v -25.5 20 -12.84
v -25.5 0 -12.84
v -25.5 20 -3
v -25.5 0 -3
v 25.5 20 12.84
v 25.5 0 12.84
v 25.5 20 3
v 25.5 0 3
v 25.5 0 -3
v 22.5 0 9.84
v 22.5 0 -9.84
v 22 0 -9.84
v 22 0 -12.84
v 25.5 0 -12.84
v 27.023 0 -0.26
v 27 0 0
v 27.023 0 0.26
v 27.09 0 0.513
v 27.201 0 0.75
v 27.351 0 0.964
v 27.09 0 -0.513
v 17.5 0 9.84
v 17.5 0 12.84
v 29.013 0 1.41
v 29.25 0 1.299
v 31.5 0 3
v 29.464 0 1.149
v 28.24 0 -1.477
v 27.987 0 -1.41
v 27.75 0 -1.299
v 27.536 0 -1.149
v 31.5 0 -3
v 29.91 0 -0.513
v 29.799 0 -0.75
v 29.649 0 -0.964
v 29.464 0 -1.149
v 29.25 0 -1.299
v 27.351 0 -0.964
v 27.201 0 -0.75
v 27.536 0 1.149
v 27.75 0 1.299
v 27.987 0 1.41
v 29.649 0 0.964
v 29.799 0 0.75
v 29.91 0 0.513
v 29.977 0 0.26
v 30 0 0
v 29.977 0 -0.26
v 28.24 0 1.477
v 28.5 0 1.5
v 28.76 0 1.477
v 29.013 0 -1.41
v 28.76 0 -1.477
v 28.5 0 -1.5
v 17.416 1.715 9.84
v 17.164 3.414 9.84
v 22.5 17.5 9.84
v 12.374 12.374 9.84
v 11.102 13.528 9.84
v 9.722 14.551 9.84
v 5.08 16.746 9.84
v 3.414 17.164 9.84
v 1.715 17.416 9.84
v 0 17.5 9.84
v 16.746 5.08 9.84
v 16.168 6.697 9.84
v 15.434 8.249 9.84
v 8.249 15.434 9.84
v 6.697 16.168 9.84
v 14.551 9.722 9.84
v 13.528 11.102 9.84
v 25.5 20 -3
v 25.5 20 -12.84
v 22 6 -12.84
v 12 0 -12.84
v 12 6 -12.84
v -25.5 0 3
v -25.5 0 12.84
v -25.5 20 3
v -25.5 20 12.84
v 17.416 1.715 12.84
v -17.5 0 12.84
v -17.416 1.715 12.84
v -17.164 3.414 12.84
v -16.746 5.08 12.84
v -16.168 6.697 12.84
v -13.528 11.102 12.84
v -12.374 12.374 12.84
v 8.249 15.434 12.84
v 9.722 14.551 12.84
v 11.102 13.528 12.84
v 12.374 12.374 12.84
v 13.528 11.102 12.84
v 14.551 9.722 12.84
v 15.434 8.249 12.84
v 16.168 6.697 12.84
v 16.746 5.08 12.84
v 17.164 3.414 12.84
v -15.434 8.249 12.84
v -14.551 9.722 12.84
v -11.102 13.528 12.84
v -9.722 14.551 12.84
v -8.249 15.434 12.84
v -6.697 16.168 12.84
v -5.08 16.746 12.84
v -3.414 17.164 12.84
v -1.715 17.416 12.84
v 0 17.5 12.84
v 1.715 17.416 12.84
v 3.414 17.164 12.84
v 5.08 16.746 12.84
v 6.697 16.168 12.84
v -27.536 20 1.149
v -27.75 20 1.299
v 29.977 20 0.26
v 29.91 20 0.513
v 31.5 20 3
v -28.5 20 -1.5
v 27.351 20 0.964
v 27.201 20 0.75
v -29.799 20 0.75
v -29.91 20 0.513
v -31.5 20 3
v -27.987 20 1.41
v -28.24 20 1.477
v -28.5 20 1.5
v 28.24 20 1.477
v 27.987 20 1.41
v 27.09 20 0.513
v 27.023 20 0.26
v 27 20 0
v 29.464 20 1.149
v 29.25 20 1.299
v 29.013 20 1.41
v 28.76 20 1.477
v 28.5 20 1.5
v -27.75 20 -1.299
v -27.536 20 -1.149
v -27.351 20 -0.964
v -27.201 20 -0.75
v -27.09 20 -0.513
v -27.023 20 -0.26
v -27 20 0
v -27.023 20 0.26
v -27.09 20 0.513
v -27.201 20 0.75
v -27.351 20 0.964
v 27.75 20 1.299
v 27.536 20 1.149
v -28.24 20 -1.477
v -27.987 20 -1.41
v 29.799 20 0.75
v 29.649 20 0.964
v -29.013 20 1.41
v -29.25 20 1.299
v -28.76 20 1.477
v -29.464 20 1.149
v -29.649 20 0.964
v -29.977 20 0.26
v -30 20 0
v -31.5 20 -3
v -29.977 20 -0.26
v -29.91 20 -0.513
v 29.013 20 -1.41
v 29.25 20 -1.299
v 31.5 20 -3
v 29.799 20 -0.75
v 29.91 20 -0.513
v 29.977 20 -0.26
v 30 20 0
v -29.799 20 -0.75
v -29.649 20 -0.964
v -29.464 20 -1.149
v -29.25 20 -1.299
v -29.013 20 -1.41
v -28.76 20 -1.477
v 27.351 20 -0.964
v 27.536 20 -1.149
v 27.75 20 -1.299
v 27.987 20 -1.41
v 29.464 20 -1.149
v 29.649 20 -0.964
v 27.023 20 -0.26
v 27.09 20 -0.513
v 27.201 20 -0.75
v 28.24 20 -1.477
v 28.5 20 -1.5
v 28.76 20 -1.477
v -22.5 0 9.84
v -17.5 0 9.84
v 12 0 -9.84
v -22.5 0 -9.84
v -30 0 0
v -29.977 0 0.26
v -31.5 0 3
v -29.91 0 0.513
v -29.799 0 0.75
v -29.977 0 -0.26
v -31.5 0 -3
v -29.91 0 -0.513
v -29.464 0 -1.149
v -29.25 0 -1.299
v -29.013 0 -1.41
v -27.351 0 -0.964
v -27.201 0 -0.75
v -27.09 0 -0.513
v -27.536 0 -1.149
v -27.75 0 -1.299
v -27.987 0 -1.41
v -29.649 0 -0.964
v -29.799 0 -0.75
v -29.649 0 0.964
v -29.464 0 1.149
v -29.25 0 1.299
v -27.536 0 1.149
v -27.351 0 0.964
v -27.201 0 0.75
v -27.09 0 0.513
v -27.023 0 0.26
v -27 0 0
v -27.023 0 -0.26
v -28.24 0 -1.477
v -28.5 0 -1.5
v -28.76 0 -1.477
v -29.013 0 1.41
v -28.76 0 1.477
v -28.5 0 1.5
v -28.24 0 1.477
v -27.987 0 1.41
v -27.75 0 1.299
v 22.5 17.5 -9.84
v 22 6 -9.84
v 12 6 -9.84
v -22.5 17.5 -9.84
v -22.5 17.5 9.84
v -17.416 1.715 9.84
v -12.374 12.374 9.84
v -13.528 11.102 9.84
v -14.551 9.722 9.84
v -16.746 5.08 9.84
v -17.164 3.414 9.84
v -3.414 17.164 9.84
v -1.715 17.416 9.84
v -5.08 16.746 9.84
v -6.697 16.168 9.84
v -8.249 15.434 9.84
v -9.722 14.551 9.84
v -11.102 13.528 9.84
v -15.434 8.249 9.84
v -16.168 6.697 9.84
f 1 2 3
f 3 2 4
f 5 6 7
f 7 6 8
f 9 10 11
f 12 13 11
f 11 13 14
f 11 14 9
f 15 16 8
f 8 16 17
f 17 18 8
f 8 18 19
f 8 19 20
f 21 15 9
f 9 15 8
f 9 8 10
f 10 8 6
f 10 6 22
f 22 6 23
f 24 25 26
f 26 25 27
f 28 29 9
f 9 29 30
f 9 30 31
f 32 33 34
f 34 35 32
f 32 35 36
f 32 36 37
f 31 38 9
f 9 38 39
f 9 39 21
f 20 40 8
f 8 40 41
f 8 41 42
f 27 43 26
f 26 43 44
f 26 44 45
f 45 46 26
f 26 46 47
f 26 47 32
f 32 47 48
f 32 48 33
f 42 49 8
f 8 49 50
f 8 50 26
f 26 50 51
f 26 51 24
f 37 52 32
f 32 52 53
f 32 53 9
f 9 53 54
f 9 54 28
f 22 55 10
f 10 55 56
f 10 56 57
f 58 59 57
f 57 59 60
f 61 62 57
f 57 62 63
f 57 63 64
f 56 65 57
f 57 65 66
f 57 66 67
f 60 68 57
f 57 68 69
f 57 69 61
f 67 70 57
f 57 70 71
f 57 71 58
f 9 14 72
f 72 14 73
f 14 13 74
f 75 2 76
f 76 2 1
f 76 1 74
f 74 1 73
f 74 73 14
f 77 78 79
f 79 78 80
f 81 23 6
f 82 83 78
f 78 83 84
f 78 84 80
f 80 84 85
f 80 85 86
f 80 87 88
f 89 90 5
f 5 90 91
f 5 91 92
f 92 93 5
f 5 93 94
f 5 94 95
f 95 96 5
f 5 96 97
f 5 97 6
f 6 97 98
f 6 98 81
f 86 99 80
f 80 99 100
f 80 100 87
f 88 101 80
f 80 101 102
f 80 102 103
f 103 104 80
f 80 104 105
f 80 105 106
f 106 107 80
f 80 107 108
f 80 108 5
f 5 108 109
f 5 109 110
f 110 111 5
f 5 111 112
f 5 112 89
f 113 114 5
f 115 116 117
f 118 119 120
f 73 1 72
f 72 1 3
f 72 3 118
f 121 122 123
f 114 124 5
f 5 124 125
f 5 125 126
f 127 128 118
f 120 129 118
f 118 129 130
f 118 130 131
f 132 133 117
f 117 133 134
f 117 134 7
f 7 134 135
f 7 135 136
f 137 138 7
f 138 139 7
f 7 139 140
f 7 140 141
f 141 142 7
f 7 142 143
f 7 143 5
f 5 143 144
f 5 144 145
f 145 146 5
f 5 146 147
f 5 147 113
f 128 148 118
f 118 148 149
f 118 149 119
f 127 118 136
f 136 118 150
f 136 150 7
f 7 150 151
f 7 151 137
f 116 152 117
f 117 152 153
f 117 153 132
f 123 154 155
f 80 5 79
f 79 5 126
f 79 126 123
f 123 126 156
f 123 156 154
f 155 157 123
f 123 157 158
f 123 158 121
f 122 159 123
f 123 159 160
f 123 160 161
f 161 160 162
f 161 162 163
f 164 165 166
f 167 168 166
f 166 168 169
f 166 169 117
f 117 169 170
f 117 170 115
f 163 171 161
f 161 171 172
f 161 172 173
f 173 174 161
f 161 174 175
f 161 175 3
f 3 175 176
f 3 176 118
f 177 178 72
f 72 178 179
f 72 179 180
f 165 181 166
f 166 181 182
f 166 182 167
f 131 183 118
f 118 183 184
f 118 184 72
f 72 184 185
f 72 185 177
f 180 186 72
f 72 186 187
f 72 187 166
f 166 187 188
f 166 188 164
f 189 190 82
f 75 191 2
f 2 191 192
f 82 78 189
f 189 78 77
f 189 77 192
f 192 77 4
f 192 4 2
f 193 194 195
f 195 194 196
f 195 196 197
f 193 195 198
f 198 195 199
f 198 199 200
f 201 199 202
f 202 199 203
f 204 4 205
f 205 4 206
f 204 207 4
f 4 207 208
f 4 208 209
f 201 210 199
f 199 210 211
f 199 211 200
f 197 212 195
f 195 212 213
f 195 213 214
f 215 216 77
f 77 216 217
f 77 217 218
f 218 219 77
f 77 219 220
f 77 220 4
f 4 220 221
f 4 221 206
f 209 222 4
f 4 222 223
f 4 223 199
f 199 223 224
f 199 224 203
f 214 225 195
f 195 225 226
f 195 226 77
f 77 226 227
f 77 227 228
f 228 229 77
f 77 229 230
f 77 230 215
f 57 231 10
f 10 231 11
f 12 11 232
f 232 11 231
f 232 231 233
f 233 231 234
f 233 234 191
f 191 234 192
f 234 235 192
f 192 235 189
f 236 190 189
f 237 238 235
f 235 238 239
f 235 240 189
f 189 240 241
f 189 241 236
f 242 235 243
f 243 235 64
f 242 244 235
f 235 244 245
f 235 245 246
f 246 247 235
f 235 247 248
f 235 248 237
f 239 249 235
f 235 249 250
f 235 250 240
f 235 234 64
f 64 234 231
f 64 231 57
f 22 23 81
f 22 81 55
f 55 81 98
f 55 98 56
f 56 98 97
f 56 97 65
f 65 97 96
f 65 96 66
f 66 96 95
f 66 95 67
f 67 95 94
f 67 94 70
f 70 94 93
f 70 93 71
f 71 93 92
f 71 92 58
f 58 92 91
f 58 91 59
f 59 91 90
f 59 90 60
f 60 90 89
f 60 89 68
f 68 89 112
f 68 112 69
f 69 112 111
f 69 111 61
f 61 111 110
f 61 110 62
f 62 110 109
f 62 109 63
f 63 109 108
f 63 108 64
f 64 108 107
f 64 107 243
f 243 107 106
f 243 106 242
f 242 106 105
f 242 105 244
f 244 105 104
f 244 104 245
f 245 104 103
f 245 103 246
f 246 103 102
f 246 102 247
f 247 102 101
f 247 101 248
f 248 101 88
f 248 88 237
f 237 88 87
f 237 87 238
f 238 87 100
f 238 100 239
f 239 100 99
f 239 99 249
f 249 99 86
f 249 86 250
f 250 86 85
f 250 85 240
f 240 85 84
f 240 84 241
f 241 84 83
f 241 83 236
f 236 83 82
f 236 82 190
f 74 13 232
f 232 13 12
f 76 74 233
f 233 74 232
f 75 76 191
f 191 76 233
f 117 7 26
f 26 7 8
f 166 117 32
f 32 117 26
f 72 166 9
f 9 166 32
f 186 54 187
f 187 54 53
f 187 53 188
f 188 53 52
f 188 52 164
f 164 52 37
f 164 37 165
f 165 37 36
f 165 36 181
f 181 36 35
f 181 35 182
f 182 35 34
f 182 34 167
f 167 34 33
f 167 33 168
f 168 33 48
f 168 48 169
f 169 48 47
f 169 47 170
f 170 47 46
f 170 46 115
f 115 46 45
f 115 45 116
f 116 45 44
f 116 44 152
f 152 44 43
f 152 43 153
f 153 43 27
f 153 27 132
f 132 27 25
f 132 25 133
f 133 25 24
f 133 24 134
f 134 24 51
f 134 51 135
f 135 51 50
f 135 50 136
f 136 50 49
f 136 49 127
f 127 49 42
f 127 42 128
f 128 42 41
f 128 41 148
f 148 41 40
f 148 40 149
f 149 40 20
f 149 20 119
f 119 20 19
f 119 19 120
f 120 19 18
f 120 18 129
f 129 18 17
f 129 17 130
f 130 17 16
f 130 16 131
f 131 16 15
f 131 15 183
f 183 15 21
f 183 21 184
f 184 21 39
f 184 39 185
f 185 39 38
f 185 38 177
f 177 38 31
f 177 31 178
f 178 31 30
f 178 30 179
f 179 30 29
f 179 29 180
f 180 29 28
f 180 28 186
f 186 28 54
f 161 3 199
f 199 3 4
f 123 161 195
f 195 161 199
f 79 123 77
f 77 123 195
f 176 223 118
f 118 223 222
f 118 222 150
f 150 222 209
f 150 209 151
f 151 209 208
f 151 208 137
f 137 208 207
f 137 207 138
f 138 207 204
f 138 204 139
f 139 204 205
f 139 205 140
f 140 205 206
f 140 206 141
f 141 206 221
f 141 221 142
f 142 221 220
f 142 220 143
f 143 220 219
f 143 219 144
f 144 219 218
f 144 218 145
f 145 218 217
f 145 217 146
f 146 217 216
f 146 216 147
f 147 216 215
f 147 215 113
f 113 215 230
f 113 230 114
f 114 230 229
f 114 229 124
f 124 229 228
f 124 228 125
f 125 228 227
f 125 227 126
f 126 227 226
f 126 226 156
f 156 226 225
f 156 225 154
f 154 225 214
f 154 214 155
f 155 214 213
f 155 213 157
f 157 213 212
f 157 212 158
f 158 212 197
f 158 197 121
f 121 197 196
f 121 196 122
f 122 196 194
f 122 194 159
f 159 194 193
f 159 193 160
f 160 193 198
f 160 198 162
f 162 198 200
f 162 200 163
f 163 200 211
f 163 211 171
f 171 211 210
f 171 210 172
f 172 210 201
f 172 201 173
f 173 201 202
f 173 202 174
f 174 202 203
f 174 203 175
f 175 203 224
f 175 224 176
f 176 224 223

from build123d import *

# Parameters (mm, degrees)
SKETCH1_W           = 51
SKETCH1_H           = 25.68
BOSS_EXTRUDE1_DEPTH = 20
SKETCH3_W           = 45
SKETCH3_H           = 19.68
CUT_EXTRUDE1_DEPTH  = 17.5
CUT_EXTRUDE2_DEPTH  = 3
SKETCH5_W           = 10
SKETCH5_H           = 6
CUT_EXTRUDE3_DEPTH  = 3
SKETCH6_W           = 6
SKETCH6_H           = 6
SKETCH6_R           = 1.5
BOSS_EXTRUDE2_DEPTH = 20


with BuildPart() as part:
    # Sketch1 → Boss-Extrude1 (new body)
    with BuildSketch(Plane(origin=(0, 0, 0), x_dir=(1, 0, 0), z_dir=(0, 1, 0))):
        Rectangle(SKETCH1_W, SKETCH1_H)
    extrude(amount=BOSS_EXTRUDE1_DEPTH)

    # Sketch3 → Cut-Extrude1 (cut)
    with BuildSketch(Plane.XZ):
        Rectangle(SKETCH3_W, SKETCH3_H)
    extrude(amount=-CUT_EXTRUDE1_DEPTH, mode=Mode.SUBTRACT)

    # Sketch4 → Cut-Extrude2 (cut)
    with BuildSketch(Plane.XY.offset(12.84)):
        with BuildLine():
            Line((-17.5, 0), (17.5, 0))
            ThreePointArc((17.5, 0), (0, 17.5), (-17.5, 0))
        make_face()
    extrude(amount=-CUT_EXTRUDE2_DEPTH, mode=Mode.SUBTRACT)

    # Sketch5 → Cut-Extrude3 (cut)
    with BuildSketch(Plane(origin=(0, 0, -12.84), x_dir=(-1, 0, 0), z_dir=(0, 0, -1))):
        with Locations((-17, 3)):
            Rectangle(SKETCH5_W, SKETCH5_H)
    extrude(amount=-CUT_EXTRUDE3_DEPTH, mode=Mode.SUBTRACT)

    # Sketch6 → Boss-Extrude2 (add)
    with BuildSketch(Plane.XZ):
        with Locations((28.5, 0)):
            Rectangle(SKETCH6_W, SKETCH6_H)
        with Locations((28.5, 0)):
            Circle(SKETCH6_R, mode=Mode.SUBTRACT)
        with Locations((-28.5, 0)):
            Rectangle(SKETCH6_W, SKETCH6_H)
        with Locations((-28.5, 0)):
            Circle(SKETCH6_R, mode=Mode.SUBTRACT)
    extrude(amount=-BOSS_EXTRUDE2_DEPTH)


solid = part.part
